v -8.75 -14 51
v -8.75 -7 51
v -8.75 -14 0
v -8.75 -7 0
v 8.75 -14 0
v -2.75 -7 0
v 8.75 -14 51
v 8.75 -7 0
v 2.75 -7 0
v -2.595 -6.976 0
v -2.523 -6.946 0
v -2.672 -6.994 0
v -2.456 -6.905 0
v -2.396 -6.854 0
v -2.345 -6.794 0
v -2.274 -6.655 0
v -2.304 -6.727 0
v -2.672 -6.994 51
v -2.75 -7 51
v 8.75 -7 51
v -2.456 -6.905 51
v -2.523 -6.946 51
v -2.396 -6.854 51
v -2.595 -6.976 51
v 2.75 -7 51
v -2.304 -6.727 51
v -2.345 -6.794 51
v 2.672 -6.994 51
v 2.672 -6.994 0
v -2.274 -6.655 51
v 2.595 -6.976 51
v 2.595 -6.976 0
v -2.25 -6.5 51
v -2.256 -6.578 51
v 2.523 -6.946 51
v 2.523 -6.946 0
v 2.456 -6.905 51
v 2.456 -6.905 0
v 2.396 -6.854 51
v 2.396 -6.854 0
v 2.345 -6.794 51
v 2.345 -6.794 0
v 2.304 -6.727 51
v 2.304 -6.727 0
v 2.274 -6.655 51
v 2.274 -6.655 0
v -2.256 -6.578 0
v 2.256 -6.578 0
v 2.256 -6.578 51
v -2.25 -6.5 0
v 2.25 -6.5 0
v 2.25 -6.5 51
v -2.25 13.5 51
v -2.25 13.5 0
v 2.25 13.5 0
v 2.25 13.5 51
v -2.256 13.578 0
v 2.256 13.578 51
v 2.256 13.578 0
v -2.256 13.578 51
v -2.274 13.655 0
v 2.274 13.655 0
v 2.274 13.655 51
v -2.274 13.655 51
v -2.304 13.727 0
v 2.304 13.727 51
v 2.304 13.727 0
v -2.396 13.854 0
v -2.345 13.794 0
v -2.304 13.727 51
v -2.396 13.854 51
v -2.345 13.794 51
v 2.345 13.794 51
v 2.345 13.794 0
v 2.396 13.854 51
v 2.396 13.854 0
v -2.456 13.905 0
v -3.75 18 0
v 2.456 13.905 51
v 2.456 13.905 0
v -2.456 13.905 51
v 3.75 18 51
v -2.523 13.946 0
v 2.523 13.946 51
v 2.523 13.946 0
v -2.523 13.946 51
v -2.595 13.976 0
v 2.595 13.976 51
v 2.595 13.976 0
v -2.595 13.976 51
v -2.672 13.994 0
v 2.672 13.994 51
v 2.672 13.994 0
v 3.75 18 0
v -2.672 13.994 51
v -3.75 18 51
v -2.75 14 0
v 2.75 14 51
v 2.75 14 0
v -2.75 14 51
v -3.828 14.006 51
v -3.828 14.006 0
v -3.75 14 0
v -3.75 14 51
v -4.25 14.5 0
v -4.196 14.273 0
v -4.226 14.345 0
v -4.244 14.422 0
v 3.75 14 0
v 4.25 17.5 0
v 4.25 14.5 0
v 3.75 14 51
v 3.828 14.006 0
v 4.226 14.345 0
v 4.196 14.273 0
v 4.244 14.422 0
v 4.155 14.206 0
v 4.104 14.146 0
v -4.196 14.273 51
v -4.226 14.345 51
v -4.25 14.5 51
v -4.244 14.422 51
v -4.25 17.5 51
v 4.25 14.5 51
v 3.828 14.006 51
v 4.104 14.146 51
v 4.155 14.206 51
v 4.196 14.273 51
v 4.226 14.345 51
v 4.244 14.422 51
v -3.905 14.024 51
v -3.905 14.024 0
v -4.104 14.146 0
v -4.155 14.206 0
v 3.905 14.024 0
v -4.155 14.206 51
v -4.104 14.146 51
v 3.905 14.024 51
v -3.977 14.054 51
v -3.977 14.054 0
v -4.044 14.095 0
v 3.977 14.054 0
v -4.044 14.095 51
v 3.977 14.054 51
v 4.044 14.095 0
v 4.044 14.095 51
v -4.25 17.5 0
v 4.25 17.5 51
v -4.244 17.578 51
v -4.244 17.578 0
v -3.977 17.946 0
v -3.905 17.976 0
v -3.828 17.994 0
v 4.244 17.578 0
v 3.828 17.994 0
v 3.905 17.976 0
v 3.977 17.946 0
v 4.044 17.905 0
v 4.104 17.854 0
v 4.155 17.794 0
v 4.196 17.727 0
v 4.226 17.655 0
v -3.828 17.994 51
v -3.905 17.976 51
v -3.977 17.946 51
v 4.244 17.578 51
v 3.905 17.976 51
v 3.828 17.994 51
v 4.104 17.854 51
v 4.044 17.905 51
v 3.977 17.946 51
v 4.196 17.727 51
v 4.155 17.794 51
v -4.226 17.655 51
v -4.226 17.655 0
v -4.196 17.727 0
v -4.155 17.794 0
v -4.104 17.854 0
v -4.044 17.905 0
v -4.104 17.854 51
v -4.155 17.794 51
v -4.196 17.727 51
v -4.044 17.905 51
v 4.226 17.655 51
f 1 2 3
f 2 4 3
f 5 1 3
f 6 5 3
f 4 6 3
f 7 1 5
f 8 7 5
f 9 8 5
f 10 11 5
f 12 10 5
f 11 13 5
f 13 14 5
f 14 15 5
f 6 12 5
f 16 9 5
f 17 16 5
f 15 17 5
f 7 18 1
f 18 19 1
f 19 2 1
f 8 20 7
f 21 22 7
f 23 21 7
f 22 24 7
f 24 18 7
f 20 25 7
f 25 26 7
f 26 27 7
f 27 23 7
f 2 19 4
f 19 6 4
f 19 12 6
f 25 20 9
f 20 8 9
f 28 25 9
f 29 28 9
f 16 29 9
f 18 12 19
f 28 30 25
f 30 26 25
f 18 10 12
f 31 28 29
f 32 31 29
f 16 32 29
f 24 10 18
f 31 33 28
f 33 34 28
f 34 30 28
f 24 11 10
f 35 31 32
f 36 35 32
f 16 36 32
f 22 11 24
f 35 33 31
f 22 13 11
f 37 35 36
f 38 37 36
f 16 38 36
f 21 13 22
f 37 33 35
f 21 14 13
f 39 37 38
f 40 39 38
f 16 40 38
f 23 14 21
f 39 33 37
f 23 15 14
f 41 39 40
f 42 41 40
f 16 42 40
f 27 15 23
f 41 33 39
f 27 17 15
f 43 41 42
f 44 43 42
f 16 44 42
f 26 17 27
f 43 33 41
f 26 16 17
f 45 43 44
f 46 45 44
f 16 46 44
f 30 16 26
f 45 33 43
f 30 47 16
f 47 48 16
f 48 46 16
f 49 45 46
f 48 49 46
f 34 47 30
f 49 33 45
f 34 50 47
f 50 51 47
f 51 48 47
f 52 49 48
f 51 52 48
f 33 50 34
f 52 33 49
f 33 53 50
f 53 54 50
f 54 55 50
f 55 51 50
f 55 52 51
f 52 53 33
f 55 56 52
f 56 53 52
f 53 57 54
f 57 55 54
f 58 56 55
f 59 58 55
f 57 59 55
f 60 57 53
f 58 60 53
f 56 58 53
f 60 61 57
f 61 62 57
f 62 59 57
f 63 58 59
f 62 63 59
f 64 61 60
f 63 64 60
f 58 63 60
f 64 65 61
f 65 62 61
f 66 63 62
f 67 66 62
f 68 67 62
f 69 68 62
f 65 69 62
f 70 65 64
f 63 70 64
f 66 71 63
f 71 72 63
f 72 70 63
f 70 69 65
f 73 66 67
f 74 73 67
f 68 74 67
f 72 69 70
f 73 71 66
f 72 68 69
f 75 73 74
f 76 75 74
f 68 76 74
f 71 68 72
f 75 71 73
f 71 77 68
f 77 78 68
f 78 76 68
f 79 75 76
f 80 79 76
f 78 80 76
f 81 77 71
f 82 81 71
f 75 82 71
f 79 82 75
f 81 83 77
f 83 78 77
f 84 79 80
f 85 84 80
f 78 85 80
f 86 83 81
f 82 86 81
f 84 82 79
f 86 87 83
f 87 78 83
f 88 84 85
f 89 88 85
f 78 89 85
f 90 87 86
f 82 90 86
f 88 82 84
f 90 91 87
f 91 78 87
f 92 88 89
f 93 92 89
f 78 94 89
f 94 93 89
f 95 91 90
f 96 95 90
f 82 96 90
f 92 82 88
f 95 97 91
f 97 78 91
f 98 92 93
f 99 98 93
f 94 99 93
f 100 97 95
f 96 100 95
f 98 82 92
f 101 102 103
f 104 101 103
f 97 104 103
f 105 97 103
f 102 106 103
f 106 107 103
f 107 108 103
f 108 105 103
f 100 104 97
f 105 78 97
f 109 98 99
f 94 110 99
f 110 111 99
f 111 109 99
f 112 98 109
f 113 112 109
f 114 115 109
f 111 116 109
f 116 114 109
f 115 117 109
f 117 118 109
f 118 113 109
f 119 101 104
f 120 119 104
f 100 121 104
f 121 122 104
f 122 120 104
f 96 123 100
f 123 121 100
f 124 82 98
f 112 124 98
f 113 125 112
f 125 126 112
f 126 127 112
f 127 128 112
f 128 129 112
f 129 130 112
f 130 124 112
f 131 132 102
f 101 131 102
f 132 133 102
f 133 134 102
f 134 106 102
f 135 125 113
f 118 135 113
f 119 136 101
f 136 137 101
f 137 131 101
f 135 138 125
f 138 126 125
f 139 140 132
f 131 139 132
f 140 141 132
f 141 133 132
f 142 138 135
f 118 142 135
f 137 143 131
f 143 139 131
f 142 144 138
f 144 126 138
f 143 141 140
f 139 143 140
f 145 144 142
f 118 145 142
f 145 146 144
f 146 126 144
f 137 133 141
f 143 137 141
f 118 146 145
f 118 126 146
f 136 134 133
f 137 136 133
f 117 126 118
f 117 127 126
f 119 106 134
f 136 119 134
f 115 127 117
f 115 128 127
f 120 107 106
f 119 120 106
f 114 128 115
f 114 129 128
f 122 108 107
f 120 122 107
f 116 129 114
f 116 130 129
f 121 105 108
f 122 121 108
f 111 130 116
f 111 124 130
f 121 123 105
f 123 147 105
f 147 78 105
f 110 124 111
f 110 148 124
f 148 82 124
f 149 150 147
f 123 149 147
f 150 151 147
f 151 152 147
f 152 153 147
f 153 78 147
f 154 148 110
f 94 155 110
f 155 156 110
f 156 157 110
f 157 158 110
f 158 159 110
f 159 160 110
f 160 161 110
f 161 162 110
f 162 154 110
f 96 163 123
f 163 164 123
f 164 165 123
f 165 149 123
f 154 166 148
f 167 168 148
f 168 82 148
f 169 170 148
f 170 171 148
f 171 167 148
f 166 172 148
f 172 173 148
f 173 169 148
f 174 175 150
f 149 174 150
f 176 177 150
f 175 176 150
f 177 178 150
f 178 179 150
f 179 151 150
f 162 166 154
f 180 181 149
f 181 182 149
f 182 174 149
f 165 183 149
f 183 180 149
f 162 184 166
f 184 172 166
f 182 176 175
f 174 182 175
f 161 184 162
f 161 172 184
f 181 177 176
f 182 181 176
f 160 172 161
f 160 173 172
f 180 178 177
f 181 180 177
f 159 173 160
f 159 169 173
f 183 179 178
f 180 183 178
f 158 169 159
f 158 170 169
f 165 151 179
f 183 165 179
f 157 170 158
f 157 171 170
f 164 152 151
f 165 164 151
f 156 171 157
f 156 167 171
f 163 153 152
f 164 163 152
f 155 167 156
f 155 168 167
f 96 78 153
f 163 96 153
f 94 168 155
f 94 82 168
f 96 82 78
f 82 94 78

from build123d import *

# Parameters (mm, degrees)
BOSS_EXTRUDE1_DEPTH = 51


with BuildPart() as part:
    # Sketch1 → Boss-Extrude1 (new body)
    with BuildSketch(Plane.XY):
        with BuildLine():
            Line((8.75, -14), (-8.75, -14))
            Line((-8.75, -14), (-8.75, -7))
            Line((-8.75, -7), (-2.75, -7))
            ThreePointArc((-2.75, -7), (-2.396446609, -6.853553391), (-2.25, -6.5))
            Line((-2.25, -6.5), (-2.25, 13.5))
            ThreePointArc((-2.25, 13.5), (-2.396446609, 13.853553391), (-2.75, 14))
            Line((-2.75, 14), (-3.75, 14))
            ThreePointArc((-3.75, 14), (-4.103553391, 14.146446609), (-4.25, 14.5))
            Line((-4.25, 14.5), (-4.25, 17.5))
            ThreePointArc((-4.25, 17.5), (-4.103553391, 17.853553391), (-3.75, 18))
            Line((-3.75, 18), (3.75, 18))
            ThreePointArc((3.75, 18), (4.103553391, 17.853553391), (4.25, 17.5))
            Line((4.25, 17.5), (4.25, 14.5))
            ThreePointArc((4.25, 14.5), (4.103553391, 14.146446609), (3.75, 14))
            Line((3.75, 14), (2.75, 14))
            ThreePointArc((2.75, 14), (2.396446609, 13.853553391), (2.25, 13.5))
            Line((2.25, 13.5), (2.25, -6.5))
            ThreePointArc((2.25, -6.5), (2.396446609, -6.853553391), (2.75, -7))
            Line((2.75, -7), (8.75, -7))
            Line((8.75, -7), (8.75, -14))
        make_face()
    extrude(amount=BOSS_EXTRUDE1_DEPTH)


solid = part.part
